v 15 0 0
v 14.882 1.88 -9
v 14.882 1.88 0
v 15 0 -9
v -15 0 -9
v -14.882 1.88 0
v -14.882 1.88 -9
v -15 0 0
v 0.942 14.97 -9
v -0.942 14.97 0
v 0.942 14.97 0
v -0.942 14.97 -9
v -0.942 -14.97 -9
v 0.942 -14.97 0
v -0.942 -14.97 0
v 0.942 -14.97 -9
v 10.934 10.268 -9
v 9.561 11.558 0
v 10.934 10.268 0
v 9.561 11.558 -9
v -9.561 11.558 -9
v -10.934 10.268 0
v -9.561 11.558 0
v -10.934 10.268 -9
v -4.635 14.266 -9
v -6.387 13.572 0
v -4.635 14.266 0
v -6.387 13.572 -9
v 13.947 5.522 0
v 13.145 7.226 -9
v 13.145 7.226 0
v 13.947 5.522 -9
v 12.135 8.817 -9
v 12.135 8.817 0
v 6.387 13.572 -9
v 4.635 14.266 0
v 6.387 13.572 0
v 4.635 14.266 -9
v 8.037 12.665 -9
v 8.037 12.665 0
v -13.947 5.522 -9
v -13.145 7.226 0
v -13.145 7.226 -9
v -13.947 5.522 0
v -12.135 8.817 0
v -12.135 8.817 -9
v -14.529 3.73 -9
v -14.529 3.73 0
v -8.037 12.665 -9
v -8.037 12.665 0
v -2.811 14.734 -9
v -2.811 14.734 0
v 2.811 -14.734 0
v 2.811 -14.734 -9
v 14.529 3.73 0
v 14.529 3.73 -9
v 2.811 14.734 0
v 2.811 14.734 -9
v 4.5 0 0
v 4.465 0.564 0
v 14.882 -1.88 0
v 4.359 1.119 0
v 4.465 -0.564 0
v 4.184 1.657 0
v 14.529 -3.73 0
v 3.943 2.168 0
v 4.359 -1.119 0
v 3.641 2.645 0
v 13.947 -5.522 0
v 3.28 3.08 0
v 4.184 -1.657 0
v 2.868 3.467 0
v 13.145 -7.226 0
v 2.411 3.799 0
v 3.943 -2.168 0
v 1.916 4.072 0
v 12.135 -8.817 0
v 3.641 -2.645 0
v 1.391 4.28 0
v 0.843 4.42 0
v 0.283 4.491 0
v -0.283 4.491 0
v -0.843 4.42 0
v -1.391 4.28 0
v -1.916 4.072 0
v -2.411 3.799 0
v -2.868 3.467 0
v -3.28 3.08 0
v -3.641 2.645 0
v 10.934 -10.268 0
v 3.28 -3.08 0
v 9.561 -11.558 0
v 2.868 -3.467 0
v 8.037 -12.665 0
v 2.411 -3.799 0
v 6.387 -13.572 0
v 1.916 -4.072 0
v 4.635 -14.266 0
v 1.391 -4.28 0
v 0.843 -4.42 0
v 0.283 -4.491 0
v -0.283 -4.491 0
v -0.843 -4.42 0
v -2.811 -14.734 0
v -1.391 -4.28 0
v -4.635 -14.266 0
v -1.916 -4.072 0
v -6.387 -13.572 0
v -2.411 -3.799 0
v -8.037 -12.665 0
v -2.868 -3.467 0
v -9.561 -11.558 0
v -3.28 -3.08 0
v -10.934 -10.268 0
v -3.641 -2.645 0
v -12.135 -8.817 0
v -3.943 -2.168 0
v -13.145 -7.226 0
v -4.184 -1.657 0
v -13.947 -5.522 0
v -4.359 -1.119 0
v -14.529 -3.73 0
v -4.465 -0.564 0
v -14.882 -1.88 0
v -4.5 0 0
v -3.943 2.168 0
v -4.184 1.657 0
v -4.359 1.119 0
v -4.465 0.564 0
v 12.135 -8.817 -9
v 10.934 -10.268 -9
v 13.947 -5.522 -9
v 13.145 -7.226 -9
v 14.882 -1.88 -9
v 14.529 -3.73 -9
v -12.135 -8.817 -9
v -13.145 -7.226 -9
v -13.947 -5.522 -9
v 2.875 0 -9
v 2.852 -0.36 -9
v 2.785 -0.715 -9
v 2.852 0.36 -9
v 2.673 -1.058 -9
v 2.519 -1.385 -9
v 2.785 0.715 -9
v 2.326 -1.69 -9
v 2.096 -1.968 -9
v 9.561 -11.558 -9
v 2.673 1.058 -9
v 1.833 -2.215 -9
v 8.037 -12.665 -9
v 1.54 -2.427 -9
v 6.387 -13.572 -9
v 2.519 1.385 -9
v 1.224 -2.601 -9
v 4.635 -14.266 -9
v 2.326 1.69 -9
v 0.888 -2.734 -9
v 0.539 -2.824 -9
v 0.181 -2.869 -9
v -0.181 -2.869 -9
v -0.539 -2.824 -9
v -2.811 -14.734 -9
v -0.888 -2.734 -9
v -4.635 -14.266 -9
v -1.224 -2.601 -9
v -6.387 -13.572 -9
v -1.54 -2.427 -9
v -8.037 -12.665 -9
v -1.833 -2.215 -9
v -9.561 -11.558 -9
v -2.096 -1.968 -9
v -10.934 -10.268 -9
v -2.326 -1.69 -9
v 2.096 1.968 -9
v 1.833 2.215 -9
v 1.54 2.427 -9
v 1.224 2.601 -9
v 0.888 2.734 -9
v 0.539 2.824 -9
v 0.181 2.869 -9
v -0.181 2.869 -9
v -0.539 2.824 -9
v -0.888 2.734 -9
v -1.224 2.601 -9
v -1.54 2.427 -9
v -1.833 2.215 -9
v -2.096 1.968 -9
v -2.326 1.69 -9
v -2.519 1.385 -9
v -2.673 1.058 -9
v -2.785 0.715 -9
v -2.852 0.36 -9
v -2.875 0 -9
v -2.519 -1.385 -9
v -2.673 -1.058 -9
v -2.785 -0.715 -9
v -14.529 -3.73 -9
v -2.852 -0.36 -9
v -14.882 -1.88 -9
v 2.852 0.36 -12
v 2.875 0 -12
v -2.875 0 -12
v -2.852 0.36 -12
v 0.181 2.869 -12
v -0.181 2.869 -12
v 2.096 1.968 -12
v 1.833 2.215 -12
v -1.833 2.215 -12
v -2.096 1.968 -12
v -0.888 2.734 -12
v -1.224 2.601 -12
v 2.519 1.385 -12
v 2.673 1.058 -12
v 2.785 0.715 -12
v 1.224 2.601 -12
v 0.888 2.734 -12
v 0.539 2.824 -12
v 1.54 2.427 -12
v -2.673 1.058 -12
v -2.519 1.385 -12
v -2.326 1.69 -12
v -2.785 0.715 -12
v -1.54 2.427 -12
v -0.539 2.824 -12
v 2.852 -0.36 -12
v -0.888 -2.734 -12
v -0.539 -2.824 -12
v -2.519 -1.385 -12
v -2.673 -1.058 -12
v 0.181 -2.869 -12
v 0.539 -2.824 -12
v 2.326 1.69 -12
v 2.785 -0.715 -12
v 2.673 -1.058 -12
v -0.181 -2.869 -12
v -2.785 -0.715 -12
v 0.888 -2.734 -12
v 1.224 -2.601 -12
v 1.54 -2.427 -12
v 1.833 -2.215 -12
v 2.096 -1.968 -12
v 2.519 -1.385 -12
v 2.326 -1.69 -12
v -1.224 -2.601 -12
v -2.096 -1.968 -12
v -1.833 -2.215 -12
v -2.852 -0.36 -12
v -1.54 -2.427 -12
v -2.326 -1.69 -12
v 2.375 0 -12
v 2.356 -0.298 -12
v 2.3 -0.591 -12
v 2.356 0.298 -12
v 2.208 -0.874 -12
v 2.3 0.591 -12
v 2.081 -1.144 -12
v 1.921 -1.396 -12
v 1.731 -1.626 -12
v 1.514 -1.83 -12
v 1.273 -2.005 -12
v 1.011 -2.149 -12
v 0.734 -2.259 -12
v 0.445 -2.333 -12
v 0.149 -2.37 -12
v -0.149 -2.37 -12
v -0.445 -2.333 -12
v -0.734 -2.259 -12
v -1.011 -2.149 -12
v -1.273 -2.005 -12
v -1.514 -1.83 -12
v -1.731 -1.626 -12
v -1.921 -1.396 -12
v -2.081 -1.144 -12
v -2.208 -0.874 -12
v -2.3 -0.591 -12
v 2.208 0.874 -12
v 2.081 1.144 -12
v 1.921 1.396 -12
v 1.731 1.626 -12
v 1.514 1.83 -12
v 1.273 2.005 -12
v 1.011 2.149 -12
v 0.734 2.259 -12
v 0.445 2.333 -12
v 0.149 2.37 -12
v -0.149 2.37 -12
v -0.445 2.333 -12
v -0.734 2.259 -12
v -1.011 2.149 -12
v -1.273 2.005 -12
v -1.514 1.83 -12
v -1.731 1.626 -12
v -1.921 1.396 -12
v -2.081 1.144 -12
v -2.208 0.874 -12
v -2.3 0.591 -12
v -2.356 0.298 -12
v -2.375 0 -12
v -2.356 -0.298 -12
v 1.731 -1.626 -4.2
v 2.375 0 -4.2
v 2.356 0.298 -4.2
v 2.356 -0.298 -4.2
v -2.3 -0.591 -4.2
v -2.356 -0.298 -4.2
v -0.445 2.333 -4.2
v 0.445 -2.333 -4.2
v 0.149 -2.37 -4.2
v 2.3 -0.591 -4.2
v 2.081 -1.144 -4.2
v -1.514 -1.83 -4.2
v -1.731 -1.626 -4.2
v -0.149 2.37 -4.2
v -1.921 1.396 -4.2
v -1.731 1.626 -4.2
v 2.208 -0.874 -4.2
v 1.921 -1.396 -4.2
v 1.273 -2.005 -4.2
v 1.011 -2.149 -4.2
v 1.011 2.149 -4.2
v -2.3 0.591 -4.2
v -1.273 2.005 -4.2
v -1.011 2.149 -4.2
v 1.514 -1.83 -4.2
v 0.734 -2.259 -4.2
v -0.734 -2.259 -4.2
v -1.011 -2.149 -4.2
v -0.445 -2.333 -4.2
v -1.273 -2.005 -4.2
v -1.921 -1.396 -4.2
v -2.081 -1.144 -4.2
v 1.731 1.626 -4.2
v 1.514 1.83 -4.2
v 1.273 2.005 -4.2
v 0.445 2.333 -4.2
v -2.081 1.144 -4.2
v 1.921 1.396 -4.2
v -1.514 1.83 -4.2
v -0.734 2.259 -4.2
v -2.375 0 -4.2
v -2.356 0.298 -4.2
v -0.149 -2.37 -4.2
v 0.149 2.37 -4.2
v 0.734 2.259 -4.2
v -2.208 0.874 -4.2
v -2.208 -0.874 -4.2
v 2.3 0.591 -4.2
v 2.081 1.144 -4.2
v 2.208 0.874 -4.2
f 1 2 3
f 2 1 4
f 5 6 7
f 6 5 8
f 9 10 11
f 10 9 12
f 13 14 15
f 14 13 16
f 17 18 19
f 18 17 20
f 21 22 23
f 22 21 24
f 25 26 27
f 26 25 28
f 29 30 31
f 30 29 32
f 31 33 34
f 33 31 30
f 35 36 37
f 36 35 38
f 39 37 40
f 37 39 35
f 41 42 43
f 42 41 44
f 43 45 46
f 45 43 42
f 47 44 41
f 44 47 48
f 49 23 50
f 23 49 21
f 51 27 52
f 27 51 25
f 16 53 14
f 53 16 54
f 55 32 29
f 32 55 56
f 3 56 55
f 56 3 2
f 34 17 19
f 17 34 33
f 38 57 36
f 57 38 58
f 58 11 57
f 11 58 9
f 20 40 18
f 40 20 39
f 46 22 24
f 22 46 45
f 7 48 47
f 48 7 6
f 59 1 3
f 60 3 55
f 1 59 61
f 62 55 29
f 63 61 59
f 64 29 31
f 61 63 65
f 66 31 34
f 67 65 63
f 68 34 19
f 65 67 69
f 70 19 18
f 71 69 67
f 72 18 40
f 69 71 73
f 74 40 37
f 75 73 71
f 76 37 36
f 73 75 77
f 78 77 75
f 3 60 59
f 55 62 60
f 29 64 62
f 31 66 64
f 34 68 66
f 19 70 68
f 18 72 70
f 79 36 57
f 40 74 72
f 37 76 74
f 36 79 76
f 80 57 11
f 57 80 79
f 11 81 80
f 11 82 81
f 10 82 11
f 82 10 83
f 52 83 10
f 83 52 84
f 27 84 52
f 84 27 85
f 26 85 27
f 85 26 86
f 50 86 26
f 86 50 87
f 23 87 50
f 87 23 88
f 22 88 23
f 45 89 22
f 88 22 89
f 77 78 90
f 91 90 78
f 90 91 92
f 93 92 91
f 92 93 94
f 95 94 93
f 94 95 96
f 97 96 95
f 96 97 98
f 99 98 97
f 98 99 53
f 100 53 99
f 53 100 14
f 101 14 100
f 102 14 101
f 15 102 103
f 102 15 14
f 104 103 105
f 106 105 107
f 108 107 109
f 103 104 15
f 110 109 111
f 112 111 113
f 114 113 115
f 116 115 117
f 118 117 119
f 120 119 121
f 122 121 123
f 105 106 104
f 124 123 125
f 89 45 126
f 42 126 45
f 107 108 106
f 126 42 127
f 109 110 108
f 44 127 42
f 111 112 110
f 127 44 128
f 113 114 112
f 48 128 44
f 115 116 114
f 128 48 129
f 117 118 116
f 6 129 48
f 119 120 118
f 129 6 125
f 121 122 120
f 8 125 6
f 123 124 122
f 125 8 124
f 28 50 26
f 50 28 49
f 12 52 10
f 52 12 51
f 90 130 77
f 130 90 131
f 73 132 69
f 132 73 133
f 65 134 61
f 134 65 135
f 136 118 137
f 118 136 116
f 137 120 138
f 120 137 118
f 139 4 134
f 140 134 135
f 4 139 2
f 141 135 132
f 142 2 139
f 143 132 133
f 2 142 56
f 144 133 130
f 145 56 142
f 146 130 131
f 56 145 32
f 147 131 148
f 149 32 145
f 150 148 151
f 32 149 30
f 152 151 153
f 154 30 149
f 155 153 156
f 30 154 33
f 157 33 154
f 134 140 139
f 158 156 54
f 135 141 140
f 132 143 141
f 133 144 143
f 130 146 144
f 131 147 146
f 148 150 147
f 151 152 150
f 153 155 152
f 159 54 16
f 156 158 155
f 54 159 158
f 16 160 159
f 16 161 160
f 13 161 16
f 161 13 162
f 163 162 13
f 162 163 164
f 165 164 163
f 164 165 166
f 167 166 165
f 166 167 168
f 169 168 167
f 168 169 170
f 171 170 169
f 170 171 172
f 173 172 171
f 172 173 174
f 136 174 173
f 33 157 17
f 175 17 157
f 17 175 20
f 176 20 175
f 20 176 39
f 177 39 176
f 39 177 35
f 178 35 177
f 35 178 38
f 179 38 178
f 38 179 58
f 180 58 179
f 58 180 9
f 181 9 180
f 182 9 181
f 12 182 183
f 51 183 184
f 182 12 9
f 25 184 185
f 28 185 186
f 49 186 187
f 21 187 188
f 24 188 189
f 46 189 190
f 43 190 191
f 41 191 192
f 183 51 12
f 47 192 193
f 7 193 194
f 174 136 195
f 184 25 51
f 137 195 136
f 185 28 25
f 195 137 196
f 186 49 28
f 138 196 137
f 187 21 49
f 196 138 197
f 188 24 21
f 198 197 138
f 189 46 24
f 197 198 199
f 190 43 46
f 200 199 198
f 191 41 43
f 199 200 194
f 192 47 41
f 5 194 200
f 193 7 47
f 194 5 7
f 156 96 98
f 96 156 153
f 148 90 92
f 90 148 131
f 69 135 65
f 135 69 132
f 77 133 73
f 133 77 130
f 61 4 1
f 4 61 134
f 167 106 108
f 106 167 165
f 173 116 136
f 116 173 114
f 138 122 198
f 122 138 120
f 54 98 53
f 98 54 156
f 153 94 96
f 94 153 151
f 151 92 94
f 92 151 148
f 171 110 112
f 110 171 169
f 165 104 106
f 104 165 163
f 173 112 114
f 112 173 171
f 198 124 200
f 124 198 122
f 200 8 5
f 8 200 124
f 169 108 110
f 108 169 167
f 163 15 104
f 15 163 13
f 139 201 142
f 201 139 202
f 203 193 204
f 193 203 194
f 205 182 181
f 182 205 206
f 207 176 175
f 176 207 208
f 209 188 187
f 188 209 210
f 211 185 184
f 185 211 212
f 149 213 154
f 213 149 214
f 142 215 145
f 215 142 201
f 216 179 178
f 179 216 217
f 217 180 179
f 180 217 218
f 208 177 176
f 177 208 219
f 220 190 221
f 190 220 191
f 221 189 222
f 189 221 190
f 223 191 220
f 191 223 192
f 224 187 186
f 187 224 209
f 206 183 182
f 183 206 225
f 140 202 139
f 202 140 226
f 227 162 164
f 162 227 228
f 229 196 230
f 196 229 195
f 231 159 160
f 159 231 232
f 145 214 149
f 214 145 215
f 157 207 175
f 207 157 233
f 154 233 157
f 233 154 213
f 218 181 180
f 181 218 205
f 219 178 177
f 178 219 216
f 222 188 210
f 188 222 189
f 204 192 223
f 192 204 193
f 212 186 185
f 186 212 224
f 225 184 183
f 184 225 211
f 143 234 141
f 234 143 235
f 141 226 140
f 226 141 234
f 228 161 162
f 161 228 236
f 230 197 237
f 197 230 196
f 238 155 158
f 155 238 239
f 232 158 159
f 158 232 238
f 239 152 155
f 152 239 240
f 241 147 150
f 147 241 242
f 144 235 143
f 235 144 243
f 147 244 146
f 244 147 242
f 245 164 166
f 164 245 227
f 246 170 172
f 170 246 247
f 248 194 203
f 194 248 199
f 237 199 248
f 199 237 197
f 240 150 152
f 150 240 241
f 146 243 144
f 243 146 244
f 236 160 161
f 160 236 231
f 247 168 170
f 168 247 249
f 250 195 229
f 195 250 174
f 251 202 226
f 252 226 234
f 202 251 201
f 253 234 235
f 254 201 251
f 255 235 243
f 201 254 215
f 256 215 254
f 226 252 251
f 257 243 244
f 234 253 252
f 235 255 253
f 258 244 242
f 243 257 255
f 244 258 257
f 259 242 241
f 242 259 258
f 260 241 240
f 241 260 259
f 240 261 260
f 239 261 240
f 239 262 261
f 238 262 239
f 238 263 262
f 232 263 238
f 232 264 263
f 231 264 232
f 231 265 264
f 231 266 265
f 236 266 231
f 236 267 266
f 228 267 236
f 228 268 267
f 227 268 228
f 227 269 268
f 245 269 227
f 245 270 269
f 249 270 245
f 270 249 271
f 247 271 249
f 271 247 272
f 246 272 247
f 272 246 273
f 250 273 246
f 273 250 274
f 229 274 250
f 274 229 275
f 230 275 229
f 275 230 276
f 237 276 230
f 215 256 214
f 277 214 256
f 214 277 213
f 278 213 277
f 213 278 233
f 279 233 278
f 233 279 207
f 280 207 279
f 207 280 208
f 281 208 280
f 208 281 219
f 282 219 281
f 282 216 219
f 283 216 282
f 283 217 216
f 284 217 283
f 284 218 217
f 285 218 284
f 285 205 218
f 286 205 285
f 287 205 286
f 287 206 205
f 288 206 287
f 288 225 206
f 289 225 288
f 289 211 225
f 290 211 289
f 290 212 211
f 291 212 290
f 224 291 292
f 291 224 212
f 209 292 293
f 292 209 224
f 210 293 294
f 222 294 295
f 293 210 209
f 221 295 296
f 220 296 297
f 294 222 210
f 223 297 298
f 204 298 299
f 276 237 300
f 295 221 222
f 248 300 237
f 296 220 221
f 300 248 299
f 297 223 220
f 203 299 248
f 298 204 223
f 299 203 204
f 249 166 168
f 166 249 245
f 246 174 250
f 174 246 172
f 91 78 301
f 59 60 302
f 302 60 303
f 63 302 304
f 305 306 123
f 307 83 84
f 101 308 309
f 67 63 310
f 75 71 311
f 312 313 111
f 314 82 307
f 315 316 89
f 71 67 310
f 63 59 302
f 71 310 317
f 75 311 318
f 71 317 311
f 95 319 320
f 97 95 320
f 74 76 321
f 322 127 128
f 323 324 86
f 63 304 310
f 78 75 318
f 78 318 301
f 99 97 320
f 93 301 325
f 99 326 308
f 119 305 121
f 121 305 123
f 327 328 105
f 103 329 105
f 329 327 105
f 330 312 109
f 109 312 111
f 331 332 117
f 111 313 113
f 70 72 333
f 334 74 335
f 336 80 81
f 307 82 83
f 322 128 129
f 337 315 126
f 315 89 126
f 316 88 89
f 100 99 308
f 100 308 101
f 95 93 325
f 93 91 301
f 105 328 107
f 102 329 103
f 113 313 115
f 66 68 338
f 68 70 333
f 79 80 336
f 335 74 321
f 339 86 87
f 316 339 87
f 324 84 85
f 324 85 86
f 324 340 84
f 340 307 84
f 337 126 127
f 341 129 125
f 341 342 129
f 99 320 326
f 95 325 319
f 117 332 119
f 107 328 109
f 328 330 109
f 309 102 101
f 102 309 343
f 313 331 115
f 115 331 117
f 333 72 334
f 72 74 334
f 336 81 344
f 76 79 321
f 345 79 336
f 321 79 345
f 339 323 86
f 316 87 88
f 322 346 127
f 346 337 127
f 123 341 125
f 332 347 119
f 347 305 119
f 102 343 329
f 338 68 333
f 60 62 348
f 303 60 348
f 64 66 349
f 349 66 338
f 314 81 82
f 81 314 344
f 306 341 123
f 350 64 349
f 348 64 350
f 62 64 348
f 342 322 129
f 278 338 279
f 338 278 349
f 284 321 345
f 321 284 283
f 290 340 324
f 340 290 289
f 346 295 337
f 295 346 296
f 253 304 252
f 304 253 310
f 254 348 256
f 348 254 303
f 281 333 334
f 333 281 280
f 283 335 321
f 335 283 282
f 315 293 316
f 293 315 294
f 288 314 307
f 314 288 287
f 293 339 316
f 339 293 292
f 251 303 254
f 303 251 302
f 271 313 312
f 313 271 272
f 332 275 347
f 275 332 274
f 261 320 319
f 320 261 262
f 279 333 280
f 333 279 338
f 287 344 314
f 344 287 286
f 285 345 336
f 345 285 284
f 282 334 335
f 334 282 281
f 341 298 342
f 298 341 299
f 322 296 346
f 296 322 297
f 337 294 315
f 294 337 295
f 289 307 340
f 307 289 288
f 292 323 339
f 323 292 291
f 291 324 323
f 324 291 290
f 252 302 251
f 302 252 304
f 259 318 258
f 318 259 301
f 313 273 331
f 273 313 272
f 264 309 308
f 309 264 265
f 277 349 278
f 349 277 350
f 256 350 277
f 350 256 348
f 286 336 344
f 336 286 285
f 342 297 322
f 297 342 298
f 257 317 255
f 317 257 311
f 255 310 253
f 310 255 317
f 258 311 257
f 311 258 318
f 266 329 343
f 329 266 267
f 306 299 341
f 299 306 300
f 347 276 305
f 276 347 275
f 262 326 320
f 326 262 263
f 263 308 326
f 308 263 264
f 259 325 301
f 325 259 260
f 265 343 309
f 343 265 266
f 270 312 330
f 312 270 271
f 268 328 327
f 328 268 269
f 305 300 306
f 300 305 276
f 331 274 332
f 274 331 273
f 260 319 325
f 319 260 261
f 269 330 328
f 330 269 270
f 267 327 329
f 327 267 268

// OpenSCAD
$fn = 50;


difference() {
	union() {
		translate(v = [0, 0, -9.0000000000]) {
			cylinder(h = 9, r = 15.0000000000);
		}
		translate(v = [0, 0, -12.0000000000]) {
			cylinder(h = 12, r = 2.8750000000);
		}
	}
	union() {
		translate(v = [0, 0, 0]) {
			rotate(a = [0, 0, 0]) {
				difference() {
					union() {
						translate(v = [0, 0, -12.0000000000]) {
							cylinder(h = 12, r = 2.2500000000);
						}
						translate(v = [0, 0, -4.2000000000]) {
							cylinder(h = 4.2000000000, r1 = 2.3750000000, r2 = 4.5000000000);
						}
						translate(v = [0, 0, -12.0000000000]) {
							cylinder(h = 12, r = 2.3750000000);
						}
						translate(v = [0, 0, -12.0000000000]) {
							cylinder(h = 12, r = 2.2500000000);
						}
					}
					union();
				}
			}
		}
	}
}
